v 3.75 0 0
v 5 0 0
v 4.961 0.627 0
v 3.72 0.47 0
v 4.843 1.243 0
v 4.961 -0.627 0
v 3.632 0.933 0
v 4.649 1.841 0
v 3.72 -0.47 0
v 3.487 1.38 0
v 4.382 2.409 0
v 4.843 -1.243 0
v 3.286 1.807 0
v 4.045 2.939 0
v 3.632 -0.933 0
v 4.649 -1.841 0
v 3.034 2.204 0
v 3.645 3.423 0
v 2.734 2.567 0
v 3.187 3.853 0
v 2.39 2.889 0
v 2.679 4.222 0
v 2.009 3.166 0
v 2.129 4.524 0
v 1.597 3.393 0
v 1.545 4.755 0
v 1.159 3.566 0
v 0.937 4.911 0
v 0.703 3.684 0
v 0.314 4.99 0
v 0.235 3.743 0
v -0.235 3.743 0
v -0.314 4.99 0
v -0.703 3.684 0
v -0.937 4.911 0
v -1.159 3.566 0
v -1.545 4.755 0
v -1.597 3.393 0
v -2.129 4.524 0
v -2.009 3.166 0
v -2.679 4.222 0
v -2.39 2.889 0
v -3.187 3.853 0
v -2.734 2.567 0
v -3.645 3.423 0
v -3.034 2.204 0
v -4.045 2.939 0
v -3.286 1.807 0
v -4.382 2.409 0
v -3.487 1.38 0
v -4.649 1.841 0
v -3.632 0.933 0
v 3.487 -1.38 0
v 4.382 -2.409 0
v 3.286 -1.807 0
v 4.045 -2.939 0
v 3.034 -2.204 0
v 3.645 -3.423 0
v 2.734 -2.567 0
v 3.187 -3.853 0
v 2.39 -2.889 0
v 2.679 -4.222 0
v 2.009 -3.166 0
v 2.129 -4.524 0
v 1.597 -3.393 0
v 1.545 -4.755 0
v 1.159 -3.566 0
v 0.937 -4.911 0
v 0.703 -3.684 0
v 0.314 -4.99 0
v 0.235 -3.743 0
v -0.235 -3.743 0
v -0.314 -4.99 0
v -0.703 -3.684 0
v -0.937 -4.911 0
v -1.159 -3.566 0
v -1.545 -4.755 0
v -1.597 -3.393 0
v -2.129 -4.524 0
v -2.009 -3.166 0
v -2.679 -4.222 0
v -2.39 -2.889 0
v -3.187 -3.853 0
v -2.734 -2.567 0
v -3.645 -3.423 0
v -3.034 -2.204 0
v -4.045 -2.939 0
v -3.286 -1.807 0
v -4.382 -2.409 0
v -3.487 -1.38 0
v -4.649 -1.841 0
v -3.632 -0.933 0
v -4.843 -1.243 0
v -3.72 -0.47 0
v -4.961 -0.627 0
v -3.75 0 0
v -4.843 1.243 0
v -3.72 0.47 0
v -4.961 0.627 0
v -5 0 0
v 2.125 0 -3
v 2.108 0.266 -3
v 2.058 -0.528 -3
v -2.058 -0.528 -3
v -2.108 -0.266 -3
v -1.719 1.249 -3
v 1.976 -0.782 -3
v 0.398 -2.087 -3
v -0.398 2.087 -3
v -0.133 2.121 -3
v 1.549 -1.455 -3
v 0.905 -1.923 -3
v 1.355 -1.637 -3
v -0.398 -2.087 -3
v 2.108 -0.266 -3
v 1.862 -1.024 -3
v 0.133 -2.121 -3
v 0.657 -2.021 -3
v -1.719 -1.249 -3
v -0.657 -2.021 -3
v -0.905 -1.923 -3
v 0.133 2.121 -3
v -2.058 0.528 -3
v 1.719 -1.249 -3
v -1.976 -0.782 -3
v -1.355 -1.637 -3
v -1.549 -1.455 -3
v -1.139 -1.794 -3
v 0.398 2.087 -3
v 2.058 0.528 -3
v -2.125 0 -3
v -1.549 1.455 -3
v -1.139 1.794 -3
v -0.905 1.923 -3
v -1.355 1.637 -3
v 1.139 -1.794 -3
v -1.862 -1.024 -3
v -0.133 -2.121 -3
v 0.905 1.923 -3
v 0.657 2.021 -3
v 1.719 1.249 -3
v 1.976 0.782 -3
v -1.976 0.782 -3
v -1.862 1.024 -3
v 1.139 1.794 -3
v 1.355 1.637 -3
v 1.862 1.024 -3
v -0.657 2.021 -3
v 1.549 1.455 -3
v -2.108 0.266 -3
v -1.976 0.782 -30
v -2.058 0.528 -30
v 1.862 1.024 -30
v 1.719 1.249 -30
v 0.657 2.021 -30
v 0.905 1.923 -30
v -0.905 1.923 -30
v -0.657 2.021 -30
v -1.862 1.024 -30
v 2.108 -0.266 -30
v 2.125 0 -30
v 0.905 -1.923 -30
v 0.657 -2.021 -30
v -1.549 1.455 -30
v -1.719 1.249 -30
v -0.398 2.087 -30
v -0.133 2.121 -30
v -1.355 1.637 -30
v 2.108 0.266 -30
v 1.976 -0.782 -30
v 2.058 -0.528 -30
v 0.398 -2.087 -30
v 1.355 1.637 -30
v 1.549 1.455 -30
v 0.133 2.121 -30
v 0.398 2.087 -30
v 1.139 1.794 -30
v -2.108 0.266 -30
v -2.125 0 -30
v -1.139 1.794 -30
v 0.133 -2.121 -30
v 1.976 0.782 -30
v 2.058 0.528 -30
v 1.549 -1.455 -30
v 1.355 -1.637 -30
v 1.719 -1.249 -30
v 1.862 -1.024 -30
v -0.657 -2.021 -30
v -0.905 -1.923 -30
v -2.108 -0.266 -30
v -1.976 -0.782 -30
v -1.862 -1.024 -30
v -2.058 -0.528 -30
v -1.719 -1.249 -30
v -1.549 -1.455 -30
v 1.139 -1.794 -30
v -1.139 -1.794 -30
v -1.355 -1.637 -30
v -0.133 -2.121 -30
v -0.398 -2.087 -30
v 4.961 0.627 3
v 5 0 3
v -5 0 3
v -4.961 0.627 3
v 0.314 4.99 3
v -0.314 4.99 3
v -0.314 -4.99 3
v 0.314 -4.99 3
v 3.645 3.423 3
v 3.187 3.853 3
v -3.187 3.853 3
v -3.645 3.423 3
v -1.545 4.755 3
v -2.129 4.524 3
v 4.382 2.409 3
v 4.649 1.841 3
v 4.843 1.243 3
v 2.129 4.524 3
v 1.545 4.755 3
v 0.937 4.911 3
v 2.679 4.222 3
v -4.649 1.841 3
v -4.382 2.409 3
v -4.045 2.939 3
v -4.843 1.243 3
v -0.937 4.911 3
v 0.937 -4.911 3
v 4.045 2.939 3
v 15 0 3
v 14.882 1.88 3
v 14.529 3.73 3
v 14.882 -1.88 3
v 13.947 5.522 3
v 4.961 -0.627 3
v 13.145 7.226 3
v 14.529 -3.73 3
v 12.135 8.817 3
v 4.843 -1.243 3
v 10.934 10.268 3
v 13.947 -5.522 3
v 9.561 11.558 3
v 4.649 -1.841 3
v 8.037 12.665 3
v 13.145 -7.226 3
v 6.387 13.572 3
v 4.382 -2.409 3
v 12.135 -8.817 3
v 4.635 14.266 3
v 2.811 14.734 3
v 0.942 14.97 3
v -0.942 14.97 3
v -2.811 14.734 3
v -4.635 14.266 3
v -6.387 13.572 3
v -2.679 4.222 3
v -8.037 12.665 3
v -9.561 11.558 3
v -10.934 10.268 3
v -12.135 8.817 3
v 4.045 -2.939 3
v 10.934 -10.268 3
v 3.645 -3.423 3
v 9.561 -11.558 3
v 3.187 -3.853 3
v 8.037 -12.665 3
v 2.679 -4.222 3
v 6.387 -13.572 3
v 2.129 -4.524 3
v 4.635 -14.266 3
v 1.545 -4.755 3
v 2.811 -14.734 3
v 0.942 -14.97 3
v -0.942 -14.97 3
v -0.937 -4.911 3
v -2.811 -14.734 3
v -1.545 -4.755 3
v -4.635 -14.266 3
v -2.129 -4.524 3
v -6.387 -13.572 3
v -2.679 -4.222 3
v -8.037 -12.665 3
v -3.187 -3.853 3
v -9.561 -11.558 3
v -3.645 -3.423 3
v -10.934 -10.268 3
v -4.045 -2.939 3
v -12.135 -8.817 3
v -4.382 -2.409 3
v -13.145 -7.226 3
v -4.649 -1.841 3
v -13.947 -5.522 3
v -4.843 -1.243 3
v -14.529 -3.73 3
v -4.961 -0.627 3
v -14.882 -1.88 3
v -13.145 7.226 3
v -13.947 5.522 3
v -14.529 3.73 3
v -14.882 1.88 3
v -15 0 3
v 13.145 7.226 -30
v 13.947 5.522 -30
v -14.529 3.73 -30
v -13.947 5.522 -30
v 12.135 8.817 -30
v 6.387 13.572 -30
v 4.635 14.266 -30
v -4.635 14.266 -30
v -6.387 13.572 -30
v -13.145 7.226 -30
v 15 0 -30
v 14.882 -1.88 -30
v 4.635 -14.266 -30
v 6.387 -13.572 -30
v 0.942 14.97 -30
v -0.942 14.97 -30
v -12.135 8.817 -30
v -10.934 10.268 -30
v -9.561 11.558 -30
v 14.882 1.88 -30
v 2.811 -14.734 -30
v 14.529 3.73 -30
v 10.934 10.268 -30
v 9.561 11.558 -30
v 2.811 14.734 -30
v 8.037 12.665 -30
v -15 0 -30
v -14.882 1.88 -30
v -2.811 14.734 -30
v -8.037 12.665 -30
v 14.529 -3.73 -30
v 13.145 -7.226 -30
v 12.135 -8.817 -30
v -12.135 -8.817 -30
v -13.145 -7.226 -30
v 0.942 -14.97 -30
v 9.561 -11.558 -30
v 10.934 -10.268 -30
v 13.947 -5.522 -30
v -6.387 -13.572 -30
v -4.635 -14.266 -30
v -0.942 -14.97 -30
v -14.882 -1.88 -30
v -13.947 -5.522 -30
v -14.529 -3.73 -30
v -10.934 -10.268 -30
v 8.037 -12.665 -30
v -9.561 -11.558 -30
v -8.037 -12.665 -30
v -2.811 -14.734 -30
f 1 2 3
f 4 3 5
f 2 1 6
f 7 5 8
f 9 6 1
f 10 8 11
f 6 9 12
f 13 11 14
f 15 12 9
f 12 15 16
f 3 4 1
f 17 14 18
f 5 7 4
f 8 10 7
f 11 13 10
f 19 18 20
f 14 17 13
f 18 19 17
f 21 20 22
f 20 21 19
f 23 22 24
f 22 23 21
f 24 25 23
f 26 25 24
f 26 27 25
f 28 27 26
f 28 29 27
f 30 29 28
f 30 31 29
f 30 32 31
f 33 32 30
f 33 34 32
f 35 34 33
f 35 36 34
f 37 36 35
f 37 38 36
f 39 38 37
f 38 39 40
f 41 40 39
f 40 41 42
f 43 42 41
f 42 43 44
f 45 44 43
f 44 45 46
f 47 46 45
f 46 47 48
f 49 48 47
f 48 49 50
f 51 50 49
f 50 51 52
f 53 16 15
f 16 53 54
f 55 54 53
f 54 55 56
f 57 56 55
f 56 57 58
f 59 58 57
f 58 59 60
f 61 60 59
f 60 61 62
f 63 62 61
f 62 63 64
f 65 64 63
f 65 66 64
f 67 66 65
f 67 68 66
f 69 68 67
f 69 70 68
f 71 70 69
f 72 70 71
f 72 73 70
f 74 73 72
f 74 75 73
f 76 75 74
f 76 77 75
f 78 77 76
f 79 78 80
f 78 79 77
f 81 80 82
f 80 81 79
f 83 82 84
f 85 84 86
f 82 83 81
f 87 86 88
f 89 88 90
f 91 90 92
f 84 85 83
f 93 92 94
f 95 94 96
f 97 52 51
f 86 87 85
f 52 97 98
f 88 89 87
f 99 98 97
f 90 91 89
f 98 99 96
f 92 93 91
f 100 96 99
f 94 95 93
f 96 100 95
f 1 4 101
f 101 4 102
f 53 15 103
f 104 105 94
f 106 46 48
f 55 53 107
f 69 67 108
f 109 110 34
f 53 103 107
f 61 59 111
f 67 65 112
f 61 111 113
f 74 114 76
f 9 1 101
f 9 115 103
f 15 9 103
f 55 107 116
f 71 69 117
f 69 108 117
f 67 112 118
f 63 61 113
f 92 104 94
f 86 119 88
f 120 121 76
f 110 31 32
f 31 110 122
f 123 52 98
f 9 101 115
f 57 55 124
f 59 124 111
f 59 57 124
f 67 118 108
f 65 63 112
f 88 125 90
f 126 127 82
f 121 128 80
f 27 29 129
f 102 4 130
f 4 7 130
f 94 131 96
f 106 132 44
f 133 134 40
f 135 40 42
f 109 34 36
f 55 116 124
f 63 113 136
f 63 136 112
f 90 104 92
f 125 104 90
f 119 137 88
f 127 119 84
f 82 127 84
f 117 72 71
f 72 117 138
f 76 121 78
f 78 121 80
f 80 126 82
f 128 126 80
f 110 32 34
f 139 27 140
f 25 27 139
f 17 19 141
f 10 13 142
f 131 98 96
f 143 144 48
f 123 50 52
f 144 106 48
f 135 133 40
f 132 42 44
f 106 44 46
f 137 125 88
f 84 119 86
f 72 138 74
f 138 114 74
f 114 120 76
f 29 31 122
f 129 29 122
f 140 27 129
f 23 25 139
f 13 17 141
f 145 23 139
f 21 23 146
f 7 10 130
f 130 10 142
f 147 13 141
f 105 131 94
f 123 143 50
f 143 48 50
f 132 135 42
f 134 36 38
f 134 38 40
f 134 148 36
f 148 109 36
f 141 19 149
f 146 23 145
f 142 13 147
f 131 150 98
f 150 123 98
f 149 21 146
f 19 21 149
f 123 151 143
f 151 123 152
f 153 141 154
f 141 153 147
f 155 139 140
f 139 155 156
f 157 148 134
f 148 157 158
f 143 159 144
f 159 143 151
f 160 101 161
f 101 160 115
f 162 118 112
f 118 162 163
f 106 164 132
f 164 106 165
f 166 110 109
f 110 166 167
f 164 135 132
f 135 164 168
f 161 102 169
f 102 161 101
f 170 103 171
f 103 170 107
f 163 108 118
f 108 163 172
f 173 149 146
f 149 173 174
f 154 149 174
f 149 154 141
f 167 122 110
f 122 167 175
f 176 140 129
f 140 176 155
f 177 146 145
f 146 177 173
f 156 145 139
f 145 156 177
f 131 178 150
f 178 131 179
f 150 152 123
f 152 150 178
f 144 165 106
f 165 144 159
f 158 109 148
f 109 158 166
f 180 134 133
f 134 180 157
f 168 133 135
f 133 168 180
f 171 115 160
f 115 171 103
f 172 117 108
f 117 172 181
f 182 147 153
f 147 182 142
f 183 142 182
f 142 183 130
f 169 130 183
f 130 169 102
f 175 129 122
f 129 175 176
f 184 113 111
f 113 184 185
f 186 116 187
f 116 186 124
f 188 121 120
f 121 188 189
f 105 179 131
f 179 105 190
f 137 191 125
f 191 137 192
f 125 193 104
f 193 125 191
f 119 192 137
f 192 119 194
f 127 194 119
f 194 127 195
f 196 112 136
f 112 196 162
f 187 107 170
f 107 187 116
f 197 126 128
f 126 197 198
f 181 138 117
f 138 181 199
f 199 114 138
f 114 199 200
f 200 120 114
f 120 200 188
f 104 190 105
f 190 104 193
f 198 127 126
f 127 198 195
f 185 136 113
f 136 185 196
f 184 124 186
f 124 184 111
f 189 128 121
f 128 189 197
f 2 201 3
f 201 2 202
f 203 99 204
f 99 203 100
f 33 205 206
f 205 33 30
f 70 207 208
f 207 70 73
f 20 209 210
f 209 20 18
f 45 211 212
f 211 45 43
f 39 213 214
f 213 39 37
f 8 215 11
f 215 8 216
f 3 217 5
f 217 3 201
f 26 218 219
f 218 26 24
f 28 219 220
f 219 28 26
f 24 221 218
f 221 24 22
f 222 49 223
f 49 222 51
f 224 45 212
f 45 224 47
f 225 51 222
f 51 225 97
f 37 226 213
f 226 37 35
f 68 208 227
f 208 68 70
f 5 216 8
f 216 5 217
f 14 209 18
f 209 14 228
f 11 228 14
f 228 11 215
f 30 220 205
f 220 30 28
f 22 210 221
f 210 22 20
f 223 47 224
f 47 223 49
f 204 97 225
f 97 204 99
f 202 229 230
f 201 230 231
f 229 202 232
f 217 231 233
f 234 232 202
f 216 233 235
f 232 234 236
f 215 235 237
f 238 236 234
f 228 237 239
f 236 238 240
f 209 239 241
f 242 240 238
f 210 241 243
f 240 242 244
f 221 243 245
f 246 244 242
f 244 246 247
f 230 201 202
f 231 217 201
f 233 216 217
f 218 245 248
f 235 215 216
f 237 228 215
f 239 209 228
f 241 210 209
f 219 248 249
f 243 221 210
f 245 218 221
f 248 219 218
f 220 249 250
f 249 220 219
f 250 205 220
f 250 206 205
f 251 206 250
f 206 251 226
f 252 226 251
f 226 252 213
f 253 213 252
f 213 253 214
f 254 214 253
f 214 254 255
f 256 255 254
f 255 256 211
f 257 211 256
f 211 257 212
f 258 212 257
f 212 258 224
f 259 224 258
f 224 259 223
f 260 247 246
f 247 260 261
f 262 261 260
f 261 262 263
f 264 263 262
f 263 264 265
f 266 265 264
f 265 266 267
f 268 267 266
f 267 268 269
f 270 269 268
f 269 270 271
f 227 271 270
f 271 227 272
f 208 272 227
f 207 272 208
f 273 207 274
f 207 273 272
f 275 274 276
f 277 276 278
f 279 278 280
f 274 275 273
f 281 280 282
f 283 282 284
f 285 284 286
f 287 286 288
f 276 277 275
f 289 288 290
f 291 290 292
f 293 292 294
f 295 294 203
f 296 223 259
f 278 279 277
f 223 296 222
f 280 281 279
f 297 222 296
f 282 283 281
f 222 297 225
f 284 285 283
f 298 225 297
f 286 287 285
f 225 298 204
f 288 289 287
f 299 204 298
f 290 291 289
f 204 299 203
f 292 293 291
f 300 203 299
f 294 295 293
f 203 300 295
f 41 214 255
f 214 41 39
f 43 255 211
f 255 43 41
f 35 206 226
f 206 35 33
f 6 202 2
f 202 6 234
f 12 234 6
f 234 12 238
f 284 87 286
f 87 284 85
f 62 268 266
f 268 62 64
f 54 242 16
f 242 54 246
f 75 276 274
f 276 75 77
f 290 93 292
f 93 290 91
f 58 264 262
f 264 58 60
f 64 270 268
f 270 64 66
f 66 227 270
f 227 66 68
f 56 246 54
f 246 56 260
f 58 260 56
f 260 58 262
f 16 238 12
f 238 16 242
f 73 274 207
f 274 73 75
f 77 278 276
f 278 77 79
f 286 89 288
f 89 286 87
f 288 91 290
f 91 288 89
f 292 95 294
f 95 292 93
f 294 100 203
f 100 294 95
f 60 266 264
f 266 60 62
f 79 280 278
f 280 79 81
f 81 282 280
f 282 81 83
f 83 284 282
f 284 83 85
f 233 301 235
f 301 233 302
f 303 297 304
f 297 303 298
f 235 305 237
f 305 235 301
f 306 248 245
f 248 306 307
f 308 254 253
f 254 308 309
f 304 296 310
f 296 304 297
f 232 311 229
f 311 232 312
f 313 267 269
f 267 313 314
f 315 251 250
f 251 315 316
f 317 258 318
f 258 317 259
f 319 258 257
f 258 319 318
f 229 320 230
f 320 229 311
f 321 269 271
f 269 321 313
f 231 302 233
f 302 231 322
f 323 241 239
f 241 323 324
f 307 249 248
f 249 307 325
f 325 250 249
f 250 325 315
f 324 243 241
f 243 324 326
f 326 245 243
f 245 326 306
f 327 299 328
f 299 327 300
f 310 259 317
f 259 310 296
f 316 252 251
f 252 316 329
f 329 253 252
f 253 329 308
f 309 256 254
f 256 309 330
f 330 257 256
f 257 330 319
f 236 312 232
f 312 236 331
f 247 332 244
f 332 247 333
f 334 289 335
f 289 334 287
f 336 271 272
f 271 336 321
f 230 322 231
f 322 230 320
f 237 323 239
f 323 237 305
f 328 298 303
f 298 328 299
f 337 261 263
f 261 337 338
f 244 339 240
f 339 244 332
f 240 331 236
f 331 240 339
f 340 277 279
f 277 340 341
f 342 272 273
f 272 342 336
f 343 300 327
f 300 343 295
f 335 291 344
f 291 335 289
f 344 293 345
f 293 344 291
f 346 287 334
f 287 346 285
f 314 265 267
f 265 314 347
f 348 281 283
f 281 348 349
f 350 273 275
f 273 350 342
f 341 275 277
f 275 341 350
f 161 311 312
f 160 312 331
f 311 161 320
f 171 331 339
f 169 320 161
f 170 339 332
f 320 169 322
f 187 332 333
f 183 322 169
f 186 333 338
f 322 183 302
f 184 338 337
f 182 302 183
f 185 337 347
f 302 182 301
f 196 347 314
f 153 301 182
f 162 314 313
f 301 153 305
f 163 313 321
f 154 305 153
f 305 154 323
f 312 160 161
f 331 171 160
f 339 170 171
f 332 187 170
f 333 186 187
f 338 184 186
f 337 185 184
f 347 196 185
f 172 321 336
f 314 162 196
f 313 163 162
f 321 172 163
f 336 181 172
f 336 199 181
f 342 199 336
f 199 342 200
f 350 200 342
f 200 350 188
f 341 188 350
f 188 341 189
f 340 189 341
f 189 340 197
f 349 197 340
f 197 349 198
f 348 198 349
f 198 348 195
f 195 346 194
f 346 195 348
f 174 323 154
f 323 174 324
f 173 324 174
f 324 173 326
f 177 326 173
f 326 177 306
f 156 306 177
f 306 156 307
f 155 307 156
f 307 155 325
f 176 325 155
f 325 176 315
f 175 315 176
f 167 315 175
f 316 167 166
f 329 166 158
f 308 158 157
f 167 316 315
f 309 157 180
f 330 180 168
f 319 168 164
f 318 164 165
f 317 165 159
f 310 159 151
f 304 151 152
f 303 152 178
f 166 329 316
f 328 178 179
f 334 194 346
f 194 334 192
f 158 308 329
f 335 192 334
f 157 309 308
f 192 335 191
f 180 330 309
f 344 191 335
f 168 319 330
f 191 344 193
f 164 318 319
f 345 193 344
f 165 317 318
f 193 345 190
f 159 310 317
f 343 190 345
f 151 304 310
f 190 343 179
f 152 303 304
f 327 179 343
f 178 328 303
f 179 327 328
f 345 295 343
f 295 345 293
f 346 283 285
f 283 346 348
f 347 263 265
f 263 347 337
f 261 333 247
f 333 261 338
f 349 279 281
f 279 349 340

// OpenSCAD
$fn = 50;

difference() {
	union() {
		translate(v = [0, 0, -30.0]) {
			cylinder(h = 33, r = 15.0);
		}
	}
	union() {
		translate(v = [0, 0, 0]) {
			rotate(a = [0, 0, 0]) {
				difference() {
					union() {
						translate(v = [0, 0, -33.0]) {
							cylinder(h = 33, r = 2.0);
						}
						translate(v = [0, 0, -3]) {
							cylinder(h = 3, r1 = 2.125, r2 = 3.75);
						}
						translate(v = [0, 0, -33.0]) {
							cylinder(h = 33, r = 2.125);
						}
						translate(v = [0, 0, -33.0]) {
							cylinder(h = 33, r = 2.0);
						}
					}
					union();
				}
			}
		}
		#cylinder(h = 3, r = 5.0);
	}
}
